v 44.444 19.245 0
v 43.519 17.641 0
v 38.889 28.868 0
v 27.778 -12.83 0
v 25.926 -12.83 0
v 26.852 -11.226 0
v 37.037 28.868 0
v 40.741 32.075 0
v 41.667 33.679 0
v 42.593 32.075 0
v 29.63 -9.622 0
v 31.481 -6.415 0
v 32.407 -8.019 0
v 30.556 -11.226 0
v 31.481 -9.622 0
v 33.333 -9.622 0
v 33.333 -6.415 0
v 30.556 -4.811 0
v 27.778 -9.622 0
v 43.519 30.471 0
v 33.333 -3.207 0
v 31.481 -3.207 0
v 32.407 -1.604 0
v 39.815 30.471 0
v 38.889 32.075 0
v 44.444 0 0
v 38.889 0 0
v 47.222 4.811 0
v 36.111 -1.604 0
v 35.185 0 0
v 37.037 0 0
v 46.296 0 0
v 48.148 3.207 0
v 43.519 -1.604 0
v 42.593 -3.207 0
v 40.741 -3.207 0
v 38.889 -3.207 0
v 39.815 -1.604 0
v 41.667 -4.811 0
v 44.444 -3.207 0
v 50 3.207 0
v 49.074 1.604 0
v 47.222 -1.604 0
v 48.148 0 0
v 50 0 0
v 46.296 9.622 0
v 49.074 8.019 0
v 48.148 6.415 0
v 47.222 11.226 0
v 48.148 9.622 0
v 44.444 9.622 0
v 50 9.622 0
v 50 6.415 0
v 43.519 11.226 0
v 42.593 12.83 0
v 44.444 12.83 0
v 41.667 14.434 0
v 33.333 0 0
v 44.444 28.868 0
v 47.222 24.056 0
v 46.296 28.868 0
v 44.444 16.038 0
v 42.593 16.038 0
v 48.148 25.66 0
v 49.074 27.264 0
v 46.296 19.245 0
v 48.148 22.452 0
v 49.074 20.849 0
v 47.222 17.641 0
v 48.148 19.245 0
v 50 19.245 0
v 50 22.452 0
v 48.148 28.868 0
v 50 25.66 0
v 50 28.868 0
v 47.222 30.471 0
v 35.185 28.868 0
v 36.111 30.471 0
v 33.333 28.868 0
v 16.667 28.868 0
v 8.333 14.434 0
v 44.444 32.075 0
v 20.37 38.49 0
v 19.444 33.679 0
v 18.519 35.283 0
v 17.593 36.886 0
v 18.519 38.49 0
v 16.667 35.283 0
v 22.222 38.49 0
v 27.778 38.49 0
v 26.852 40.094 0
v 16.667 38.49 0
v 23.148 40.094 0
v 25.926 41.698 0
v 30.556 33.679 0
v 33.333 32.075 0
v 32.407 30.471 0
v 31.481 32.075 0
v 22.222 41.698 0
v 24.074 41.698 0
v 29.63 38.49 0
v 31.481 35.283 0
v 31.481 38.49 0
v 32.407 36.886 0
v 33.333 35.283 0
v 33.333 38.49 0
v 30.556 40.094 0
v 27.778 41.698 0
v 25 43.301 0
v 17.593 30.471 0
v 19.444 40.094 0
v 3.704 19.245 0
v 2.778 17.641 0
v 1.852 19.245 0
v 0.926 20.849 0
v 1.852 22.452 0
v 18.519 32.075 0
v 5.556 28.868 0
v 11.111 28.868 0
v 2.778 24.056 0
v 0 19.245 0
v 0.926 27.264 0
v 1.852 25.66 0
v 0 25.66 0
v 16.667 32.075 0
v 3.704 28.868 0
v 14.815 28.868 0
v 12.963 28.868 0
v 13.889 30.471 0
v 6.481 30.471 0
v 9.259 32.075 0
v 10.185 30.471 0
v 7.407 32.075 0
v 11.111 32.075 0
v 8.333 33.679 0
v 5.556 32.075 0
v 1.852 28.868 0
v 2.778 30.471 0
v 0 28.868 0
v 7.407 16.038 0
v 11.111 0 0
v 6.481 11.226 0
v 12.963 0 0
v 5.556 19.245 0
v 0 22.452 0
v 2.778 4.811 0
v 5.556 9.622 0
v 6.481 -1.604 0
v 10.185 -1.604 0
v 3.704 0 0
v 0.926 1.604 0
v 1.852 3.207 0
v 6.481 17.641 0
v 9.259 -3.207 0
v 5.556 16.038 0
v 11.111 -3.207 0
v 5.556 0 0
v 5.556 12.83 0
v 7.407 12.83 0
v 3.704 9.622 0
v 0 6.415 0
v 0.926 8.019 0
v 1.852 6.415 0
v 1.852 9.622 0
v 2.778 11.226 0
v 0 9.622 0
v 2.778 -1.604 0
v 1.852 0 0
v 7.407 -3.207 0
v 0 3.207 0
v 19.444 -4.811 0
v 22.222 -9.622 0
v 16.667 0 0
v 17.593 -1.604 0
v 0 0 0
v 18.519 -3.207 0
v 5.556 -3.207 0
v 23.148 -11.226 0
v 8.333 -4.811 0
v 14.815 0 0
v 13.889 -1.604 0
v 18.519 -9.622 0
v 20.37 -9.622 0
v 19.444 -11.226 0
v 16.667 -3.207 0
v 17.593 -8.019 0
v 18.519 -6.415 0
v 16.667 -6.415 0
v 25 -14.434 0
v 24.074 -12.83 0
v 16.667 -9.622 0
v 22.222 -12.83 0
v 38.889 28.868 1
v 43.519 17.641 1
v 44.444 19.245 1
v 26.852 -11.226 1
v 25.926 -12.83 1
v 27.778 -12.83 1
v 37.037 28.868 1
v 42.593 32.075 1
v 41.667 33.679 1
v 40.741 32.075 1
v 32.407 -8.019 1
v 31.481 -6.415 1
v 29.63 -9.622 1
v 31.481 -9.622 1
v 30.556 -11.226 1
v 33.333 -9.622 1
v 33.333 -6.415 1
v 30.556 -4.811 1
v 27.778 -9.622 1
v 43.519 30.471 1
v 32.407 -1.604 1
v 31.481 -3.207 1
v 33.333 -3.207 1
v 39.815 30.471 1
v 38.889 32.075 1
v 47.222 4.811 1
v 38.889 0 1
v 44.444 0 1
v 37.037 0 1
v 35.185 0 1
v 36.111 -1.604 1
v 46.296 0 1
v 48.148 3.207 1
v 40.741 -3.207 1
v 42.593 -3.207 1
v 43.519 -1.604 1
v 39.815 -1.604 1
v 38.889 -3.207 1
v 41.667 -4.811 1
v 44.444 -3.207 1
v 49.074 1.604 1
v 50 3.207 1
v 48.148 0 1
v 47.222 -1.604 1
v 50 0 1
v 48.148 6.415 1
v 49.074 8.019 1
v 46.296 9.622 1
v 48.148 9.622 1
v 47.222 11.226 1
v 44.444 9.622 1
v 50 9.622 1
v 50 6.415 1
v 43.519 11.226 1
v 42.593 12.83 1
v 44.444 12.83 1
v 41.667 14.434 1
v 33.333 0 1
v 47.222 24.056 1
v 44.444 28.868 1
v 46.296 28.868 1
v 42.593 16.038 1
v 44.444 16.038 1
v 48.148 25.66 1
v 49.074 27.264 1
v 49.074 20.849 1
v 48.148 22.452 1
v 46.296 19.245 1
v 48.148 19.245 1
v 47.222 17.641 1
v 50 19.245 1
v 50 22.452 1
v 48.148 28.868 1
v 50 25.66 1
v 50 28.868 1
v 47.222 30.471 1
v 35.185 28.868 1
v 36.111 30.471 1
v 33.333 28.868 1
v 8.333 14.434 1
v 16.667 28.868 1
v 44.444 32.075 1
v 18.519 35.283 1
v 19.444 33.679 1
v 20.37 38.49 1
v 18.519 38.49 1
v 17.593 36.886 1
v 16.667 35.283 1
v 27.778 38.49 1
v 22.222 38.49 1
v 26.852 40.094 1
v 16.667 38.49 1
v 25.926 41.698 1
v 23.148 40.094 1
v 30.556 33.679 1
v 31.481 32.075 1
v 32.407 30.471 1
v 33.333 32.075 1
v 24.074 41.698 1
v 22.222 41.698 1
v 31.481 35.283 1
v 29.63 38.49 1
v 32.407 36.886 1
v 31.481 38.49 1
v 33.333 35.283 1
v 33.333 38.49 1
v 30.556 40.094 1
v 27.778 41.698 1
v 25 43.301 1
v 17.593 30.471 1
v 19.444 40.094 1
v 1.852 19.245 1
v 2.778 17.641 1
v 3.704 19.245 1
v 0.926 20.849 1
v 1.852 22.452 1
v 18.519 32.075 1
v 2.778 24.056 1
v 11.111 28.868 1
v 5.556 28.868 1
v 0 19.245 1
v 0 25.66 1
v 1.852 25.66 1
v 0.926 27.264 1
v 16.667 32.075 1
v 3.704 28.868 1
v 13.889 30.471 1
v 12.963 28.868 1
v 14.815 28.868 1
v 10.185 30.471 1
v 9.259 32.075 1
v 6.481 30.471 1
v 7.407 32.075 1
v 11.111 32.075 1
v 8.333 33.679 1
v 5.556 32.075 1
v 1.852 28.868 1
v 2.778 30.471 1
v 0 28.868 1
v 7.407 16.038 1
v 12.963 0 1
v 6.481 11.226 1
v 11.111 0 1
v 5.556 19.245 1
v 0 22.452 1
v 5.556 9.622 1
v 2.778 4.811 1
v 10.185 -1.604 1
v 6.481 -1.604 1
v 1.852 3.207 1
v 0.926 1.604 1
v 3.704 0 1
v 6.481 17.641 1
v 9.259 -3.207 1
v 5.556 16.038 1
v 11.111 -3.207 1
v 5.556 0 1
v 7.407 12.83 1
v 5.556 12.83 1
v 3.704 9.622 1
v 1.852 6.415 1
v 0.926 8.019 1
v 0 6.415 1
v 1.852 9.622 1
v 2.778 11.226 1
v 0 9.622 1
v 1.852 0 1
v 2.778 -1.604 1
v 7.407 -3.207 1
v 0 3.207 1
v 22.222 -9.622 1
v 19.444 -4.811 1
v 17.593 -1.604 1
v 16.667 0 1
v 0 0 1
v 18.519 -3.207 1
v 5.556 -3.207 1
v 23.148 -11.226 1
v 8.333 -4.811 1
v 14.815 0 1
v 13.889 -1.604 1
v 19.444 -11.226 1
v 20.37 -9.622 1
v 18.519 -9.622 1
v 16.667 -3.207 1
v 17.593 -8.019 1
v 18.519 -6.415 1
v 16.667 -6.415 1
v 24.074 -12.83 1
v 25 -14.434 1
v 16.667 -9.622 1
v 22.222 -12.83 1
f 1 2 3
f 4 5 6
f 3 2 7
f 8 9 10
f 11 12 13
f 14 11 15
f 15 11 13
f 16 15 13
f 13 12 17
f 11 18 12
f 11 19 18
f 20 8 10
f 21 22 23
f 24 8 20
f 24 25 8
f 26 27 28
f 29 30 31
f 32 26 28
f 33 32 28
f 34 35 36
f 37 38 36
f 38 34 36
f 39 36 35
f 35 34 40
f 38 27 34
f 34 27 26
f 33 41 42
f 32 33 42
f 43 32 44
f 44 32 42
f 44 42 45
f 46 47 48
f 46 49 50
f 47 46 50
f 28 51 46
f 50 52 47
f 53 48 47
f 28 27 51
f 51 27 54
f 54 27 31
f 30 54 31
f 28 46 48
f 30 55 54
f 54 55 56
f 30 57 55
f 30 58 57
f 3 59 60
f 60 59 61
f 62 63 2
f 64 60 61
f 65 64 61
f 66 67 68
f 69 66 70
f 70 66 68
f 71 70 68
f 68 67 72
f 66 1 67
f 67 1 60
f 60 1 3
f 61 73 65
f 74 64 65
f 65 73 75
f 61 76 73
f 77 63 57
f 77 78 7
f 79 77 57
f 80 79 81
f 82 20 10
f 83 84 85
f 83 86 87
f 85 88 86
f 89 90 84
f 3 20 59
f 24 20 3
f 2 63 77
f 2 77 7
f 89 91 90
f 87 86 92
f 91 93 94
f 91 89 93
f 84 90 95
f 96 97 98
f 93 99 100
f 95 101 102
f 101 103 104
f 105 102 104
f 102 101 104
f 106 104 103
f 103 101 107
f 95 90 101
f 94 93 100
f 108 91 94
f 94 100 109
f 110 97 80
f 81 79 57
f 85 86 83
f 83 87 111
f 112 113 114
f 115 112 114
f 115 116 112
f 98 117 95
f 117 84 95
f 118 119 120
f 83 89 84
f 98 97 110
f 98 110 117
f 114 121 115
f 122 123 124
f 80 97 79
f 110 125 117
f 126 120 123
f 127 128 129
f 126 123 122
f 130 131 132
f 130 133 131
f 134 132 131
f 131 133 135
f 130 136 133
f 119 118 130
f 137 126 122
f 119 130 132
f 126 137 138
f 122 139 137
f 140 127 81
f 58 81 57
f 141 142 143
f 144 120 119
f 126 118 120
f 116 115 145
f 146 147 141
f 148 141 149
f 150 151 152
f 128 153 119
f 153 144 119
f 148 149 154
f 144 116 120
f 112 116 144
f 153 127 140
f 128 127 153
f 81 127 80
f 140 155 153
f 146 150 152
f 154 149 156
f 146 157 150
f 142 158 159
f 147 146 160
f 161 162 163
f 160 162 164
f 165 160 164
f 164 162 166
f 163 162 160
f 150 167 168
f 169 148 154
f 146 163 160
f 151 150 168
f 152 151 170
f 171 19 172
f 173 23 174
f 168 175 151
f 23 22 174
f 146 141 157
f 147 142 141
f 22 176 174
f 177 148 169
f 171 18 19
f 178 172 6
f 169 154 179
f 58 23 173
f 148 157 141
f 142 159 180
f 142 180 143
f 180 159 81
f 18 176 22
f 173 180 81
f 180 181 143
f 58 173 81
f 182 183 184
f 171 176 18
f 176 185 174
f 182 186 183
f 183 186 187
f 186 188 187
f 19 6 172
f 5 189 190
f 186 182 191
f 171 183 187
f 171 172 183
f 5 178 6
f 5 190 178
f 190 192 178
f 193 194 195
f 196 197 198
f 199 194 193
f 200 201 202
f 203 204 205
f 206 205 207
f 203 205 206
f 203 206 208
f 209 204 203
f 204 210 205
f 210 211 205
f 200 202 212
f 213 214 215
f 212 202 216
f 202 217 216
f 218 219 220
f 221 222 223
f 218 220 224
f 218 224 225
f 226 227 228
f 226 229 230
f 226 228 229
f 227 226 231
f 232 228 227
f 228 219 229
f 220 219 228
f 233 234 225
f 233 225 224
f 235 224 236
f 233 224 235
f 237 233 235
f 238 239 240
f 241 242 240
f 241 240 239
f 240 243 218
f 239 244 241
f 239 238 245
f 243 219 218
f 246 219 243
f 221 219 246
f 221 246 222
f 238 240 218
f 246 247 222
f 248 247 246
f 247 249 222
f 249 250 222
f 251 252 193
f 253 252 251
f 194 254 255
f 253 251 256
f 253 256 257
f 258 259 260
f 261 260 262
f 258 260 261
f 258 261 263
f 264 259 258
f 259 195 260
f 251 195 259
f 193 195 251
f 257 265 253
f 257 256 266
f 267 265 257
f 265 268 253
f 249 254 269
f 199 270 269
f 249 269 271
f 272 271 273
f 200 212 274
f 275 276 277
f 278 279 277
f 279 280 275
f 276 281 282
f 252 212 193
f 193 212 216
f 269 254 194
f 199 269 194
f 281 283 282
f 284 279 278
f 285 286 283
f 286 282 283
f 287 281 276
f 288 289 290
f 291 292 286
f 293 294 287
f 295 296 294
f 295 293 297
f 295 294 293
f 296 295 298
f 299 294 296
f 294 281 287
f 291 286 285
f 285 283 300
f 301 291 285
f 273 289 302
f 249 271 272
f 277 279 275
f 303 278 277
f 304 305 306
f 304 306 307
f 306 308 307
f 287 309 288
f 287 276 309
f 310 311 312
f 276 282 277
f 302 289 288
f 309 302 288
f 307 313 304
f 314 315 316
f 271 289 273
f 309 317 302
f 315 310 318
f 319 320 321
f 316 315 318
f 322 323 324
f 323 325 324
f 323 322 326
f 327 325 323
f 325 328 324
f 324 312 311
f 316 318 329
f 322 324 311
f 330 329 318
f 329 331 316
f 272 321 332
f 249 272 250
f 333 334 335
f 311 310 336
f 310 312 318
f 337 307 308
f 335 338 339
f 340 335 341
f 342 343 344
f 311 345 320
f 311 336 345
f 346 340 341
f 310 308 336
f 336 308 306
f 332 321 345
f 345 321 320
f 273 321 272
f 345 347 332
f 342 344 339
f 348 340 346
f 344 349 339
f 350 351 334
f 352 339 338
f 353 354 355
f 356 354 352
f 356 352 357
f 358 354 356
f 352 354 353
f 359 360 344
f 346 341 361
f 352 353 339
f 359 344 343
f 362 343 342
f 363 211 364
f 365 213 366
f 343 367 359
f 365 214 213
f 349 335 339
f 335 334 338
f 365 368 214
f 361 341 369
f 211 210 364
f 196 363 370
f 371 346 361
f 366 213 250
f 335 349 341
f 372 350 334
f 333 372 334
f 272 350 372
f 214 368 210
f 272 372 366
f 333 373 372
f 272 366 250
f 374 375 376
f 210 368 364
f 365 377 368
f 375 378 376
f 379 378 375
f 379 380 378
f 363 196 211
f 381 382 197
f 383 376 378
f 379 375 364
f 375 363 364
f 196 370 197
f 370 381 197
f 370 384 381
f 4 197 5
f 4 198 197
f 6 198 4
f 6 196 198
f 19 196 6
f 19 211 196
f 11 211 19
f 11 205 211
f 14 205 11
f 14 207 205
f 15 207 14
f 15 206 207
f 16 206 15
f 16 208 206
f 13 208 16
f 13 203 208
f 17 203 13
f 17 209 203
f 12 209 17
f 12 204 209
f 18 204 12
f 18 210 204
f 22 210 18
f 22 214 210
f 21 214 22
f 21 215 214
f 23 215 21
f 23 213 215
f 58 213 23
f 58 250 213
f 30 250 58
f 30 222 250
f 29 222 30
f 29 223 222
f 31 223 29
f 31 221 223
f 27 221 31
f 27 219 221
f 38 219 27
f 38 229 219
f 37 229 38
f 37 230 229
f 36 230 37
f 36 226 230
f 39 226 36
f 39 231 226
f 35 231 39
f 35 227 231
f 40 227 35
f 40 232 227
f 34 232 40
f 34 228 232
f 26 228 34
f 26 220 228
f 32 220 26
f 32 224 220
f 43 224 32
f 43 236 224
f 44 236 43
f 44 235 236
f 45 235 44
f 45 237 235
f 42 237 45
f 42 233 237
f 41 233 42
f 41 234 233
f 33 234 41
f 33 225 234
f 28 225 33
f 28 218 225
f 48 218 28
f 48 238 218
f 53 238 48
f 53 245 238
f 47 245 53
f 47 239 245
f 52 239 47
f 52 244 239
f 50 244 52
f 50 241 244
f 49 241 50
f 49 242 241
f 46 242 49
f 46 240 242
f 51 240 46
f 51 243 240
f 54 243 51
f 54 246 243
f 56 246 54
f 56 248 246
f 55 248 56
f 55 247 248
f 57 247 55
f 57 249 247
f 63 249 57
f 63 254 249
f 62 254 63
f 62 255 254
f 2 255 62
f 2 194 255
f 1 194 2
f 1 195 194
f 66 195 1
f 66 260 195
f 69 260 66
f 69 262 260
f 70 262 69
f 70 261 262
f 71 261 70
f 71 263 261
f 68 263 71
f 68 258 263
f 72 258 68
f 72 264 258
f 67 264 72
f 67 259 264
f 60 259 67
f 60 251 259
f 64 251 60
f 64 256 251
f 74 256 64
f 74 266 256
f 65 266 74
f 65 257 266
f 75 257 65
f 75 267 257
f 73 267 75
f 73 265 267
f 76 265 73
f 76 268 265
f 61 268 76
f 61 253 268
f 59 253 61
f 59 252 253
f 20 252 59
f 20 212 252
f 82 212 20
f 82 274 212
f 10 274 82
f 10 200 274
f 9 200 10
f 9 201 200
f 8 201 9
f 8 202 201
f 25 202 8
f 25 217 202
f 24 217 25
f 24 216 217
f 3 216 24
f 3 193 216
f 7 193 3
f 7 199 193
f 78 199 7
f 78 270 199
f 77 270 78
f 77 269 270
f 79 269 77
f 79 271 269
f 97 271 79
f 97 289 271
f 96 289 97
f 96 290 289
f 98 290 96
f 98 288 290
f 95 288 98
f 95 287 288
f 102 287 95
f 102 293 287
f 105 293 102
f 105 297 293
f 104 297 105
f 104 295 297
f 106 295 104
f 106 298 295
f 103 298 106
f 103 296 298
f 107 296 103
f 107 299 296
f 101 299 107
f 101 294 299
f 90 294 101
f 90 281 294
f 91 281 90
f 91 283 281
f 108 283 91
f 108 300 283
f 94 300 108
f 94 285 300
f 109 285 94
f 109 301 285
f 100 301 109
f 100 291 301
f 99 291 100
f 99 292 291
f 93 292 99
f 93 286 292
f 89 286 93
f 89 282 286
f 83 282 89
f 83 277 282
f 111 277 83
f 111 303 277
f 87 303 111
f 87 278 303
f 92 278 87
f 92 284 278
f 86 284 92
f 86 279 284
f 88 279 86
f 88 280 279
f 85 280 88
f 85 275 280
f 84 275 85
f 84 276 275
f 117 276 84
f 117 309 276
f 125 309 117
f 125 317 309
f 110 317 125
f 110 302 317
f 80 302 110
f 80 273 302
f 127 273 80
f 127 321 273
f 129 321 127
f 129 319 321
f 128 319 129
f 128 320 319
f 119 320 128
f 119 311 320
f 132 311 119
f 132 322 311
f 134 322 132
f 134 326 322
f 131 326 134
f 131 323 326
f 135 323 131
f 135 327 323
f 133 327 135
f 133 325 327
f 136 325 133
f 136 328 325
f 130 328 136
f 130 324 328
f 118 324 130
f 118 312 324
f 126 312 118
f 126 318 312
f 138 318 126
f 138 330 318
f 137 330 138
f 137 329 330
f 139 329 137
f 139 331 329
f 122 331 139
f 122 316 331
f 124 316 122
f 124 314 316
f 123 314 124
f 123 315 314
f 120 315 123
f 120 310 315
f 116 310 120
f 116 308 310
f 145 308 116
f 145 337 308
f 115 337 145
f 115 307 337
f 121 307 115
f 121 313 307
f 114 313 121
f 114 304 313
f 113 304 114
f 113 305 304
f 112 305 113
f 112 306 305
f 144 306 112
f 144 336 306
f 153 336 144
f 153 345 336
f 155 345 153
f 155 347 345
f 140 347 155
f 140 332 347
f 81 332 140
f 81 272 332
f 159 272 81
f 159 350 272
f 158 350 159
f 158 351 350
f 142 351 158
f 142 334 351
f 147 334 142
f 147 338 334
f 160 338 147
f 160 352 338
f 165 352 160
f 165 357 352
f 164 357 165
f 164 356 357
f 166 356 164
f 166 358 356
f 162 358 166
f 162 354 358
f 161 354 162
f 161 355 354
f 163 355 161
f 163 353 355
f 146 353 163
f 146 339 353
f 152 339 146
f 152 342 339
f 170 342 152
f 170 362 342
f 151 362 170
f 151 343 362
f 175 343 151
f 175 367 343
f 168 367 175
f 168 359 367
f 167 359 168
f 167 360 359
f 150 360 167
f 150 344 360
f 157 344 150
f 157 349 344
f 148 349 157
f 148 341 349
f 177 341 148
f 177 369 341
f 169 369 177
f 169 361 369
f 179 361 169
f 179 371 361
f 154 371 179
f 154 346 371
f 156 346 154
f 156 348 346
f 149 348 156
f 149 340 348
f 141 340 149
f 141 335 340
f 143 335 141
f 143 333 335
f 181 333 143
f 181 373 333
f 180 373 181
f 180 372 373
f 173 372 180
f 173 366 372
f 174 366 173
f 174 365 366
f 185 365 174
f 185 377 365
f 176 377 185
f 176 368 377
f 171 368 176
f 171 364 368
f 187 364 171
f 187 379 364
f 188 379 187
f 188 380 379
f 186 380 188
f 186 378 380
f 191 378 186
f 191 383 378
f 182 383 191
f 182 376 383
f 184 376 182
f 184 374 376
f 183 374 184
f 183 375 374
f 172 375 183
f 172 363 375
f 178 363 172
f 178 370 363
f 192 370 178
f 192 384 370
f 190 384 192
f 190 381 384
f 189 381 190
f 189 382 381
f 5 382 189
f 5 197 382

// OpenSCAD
linear_extrude(height=1.0){
    polygon(points=[[0, 0], [0.9259259259259257, 1.6037507477489603], [0.9259259259259257, 1.6037507477489603], [-2.220446049250313e-16, 3.2075014954979206], [-2.220446049250313e-16, 3.2075014954979206], [1.8518518518518514, 3.2075014954979206], [1.8518518518518514, 3.2075014954979206], [2.7777777777777772, 4.811252243246881], [2.7777777777777772, 4.811252243246881], [1.8518518518518512, 6.415002990995841], [1.8518518518518512, 6.415002990995841], [-6.661338147750939e-16, 6.415002990995841], [-6.661338147750939e-16, 6.415002990995841], [0.9259259259259252, 8.018753738744802], [0.9259259259259252, 8.018753738744802], [-8.881784197001252e-16, 9.622504486493762], [-8.881784197001252e-16, 9.622504486493762], [1.8518518518518507, 9.622504486493762], [1.8518518518518507, 9.622504486493762], [2.777777777777777, 11.226255234242723], [2.777777777777777, 11.226255234242723], [3.7037037037037024, 9.622504486493762], [3.7037037037037024, 9.622504486493762], [5.5555555555555545, 9.622504486493762], [5.5555555555555545, 9.622504486493762], [6.48148148148148, 11.226255234242723], [6.48148148148148, 11.226255234242723], [5.555555555555554, 12.830005981991683], [5.555555555555554, 12.830005981991683], [7.4074074074074066, 12.830005981991683], [7.4074074074074066, 12.830005981991683], [8.333333333333332, 14.433756729740644], [8.333333333333332, 14.433756729740644], [7.4074074074074066, 16.037507477489605], [7.4074074074074066, 16.037507477489605], [5.555555555555555, 16.037507477489605], [5.555555555555555, 16.037507477489605], [6.481481481481481, 17.641258225238563], [6.481481481481481, 17.641258225238563], [5.555555555555555, 19.245008972987524], [5.555555555555555, 19.245008972987524], [3.7037037037037033, 19.245008972987524], [3.7037037037037033, 19.245008972987524], [2.7777777777777772, 17.641258225238563], [2.7777777777777772, 17.641258225238563], [1.8518518518518512, 19.245008972987524], [1.8518518518518512, 19.245008972987524], [-8.881784197001252e-16, 19.245008972987524], [-8.881784197001252e-16, 19.245008972987524], [0.9259259259259253, 20.848759720736485], [0.9259259259259253, 20.848759720736485], [-2.220446049250313e-16, 22.452510468485443], [-2.220446049250313e-16, 22.452510468485443], [1.8518518518518514, 22.452510468485443], [1.8518518518518514, 22.452510468485443], [2.7777777777777777, 24.056261216234404], [2.7777777777777777, 24.056261216234404], [1.8518518518518519, 25.660011963983365], [1.8518518518518519, 25.660011963983365], [-8.881784197001252e-16, 25.660011963983365], [-8.881784197001252e-16, 25.660011963983365], [0.925925925925926, 27.263762711732326], [0.925925925925926, 27.263762711732326], [0.0, 28.867513459481287], [0.0, 28.867513459481287], [1.8518518518518514, 28.867513459481287], [1.8518518518518514, 28.867513459481287], [2.7777777777777772, 30.47126420723025], [2.7777777777777772, 30.47126420723025], [3.703703703703703, 28.867513459481287], [3.703703703703703, 28.867513459481287], [5.5555555555555545, 28.867513459481287], [5.5555555555555545, 28.867513459481287], [6.48148148148148, 30.47126420723025], [6.48148148148148, 30.47126420723025], [5.555555555555554, 32.07501495497921], [5.555555555555554, 32.07501495497921], [7.4074074074074066, 32.07501495497921], [7.4074074074074066, 32.07501495497921], [8.333333333333332, 33.67876570272817], [8.333333333333332, 33.67876570272817], [9.259259259259258, 32.07501495497921], [9.259259259259258, 32.07501495497921], [11.11111111111111, 32.07501495497921], [11.11111111111111, 32.07501495497921], [10.185185185185183, 30.47126420723025], [10.185185185185183, 30.47126420723025], [11.111111111111109, 28.867513459481287], [11.111111111111109, 28.867513459481287], [12.96296296296296, 28.867513459481287], [12.96296296296296, 28.867513459481287], [13.888888888888886, 30.47126420723025], [13.888888888888886, 30.47126420723025], [14.814814814814813, 28.867513459481287], [14.814814814814813, 28.867513459481287], [16.666666666666664, 28.867513459481287], [16.666666666666664, 28.867513459481287], [17.59259259259259, 30.47126420723025], [17.59259259259259, 30.47126420723025], [16.666666666666664, 32.07501495497921], [16.666666666666664, 32.07501495497921], [18.518518518518515, 32.07501495497921], [18.518518518518515, 32.07501495497921], [19.444444444444443, 33.67876570272817], [19.444444444444443, 33.67876570272817], [18.518518518518515, 35.28251645047713], [18.518518518518515, 35.28251645047713], [16.666666666666664, 35.28251645047713], [16.666666666666664, 35.28251645047713], [17.59259259259259, 36.88626719822609], [17.59259259259259, 36.88626719822609], [16.666666666666664, 38.490017945975055], [16.666666666666664, 38.490017945975055], [18.518518518518515, 38.490017945975055], [18.518518518518515, 38.490017945975055], [19.444444444444446, 40.093768693724016], [19.444444444444446, 40.093768693724016], [20.37037037037037, 38.49001794597505], [20.37037037037037, 38.49001794597505], [22.22222222222222, 38.49001794597505], [22.22222222222222, 38.49001794597505], [23.14814814814815, 40.09376869372401], [23.14814814814815, 40.09376869372401], [22.22222222222222, 41.69751944147297], [22.22222222222222, 41.69751944147297], [24.074074074074073, 41.69751944147297], [24.074074074074073, 41.69751944147297], [25.0, 43.30127018922193], [25.0, 43.30127018922193], [25.925925925925924, 41.69751944147297], [25.925925925925924, 41.69751944147297], [27.777777777777775, 41.69751944147297], [27.777777777777775, 41.69751944147297], [26.85185185185185, 40.09376869372401], [26.85185185185185, 40.09376869372401], [27.777777777777775, 38.49001794597505], [27.777777777777775, 38.49001794597505], [29.629629629629626, 38.49001794597505], [29.629629629629626, 38.49001794597505], [30.555555555555546, 40.093768693724016], [30.555555555555546, 40.093768693724016], [31.481481481481477, 38.490017945975055], [31.481481481481477, 38.490017945975055], [33.33333333333333, 38.490017945975055], [33.33333333333333, 38.490017945975055], [32.407407407407405, 36.88626719822609], [32.407407407407405, 36.88626719822609], [33.33333333333333, 35.28251645047713], [33.33333333333333, 35.28251645047713], [31.481481481481477, 35.28251645047713], [31.481481481481477, 35.28251645047713], [30.55555555555555, 33.67876570272817], [30.55555555555555, 33.67876570272817], [31.481481481481477, 32.07501495497921], [31.481481481481477, 32.07501495497921], [33.33333333333333, 32.07501495497921], [33.33333333333333, 32.07501495497921], [32.407407407407405, 30.47126420723025], [32.407407407407405, 30.47126420723025], [33.33333333333333, 28.867513459481287], [33.33333333333333, 28.867513459481287], [35.18518518518518, 28.867513459481287], [35.18518518518518, 28.867513459481287], [36.11111111111111, 30.47126420723025], [36.11111111111111, 30.47126420723025], [37.03703703703703, 28.867513459481287], [37.03703703703703, 28.867513459481287], [38.888888888888886, 28.867513459481287], [38.888888888888886, 28.867513459481287], [39.81481481481481, 30.47126420723025], [39.81481481481481, 30.47126420723025], [38.88888888888888, 32.07501495497921], [38.88888888888888, 32.07501495497921], [40.74074074074074, 32.07501495497921], [40.74074074074074, 32.07501495497921], [41.666666666666664, 33.67876570272817], [41.666666666666664, 33.67876570272817], [42.59259259259259, 32.07501495497921], [42.59259259259259, 32.07501495497921], [44.44444444444445, 32.07501495497921], [44.44444444444445, 32.07501495497921], [43.51851851851852, 30.47126420723025], [43.51851851851852, 30.47126420723025], [44.44444444444444, 28.867513459481287], [44.44444444444444, 28.867513459481287], [46.2962962962963, 28.867513459481287], [46.2962962962963, 28.867513459481287], [47.22222222222222, 30.47126420723025], [47.22222222222222, 30.47126420723025], [48.148148148148145, 28.867513459481287], [48.148148148148145, 28.867513459481287], [50.0, 28.867513459481287], [50.0, 28.867513459481287], [49.074074074074076, 27.263762711732326], [49.074074074074076, 27.263762711732326], [50.0, 25.660011963983365], [50.0, 25.660011963983365], [48.148148148148145, 25.66001196398337], [48.148148148148145, 25.66001196398337], [47.22222222222222, 24.056261216234407], [47.22222222222222, 24.056261216234407], [48.148148148148145, 22.452510468485446], [48.148148148148145, 22.452510468485446], [50.0, 22.452510468485443], [50.0, 22.452510468485443], [49.07407407407407, 20.848759720736485], [49.07407407407407, 20.848759720736485], [49.99999999999999, 19.245008972987524], [49.99999999999999, 19.245008972987524], [48.148148148148145, 19.245008972987524], [48.148148148148145, 19.245008972987524], [47.222222222222214, 17.64125822523857], [47.222222222222214, 17.64125822523857], [46.29629629629629, 19.245008972987527], [46.29629629629629, 19.245008972987527], [44.44444444444444, 19.245008972987527], [44.44444444444444, 19.245008972987527], [43.51851851851852, 17.641258225238566], [43.51851851851852, 17.641258225238566], [44.44444444444445, 16.037507477489605], [44.44444444444445, 16.037507477489605], [42.59259259259259, 16.037507477489605], [42.59259259259259, 16.037507477489605], [41.666666666666664, 14.433756729740644], [41.666666666666664, 14.433756729740644], [42.59259259259259, 12.830005981991684], [42.59259259259259, 12.830005981991684], [44.44444444444444, 12.830005981991684], [44.44444444444444, 12.830005981991684], [43.51851851851852, 11.226255234242725], [43.51851851851852, 11.226255234242725], [44.44444444444444, 9.622504486493764], [44.44444444444444, 9.622504486493764], [46.29629629629629, 9.622504486493764], [46.29629629629629, 9.622504486493764], [47.222222222222214, 11.226255234242723], [47.222222222222214, 11.226255234242723], [48.148148148148145, 9.622504486493764], [48.148148148148145, 9.622504486493764], [49.99999999999999, 9.622504486493764], [49.99999999999999, 9.622504486493764], [49.07407407407407, 8.018753738744802], [49.07407407407407, 8.018753738744802], [49.99999999999999, 6.415002990995845], [49.99999999999999, 6.415002990995845], [48.148148148148145, 6.415002990995843], [48.148148148148145, 6.415002990995843], [47.22222222222222, 4.811252243246882], [47.22222222222222, 4.811252243246882], [48.148148148148145, 3.2075014954979215], [48.148148148148145, 3.2075014954979215], [50.0, 3.2075014954979215], [50.0, 3.2075014954979215], [49.074074074074076, 1.6037507477489608], [49.074074074074076, 1.6037507477489608], [50.0, 0.0], [50.0, 0.0], [48.148148148148145, 0.0], [48.148148148148145, 0.0], [47.22222222222222, -1.603750747748961], [47.22222222222222, -1.603750747748961], [46.2962962962963, 0.0], [46.2962962962963, 0.0], [44.44444444444444, 0.0], [44.44444444444444, 0.0], [43.51851851851852, -1.6037507477489603], [43.51851851851852, -1.6037507477489603], [44.44444444444444, -3.207501495497919], [44.44444444444444, -3.207501495497919], [42.592592592592595, -3.2075014954979206], [42.592592592592595, -3.2075014954979206], [41.66666666666667, -4.811252243246881], [41.66666666666667, -4.811252243246881], [40.74074074074075, -3.2075014954979206], [40.74074074074075, -3.2075014954979206], [38.8888888888889, -3.207501495497921], [38.8888888888889, -3.207501495497921], [39.81481481481482, -1.6037507477489603], [39.81481481481482, -1.6037507477489603], [38.88888888888889, 0.0], [38.88888888888889, 0.0], [37.03703703703704, 0.0], [37.03703703703704, 0.0], [36.111111111111114, -1.603750747748961], [36.111111111111114, -1.603750747748961], [35.18518518518519, 0.0], [35.18518518518519, 0.0], [33.333333333333336, 0.0], [33.333333333333336, 0.0], [32.40740740740741, -1.6037507477489605], [32.40740740740741, -1.6037507477489605], [33.333333333333336, -3.2075014954979215], [33.333333333333336, -3.2075014954979215], [31.481481481481485, -3.207501495497921], [31.481481481481485, -3.207501495497921], [30.555555555555557, -4.811252243246882], [30.555555555555557, -4.811252243246882], [31.481481481481485, -6.415002990995842], [31.481481481481485, -6.415002990995842], [33.333333333333336, -6.415002990995842], [33.333333333333336, -6.415002990995842], [32.40740740740741, -8.018753738744802], [32.40740740740741, -8.018753738744802], [33.333333333333336, -9.622504486493764], [33.333333333333336, -9.622504486493764], [31.481481481481485, -9.622504486493764], [31.481481481481485, -9.622504486493764], [30.555555555555557, -11.226255234242725], [30.555555555555557, -11.226255234242725], [29.62962962962963, -9.622504486493764], [29.62962962962963, -9.622504486493764], [27.77777777777778, -9.622504486493764], [27.77777777777778, -9.622504486493764], [26.85185185185185, -11.226255234242725], [26.85185185185185, -11.226255234242725], [27.77777777777778, -12.830005981991686], [27.77777777777778, -12.830005981991686], [25.925925925925927, -12.830005981991684], [25.925925925925927, -12.830005981991684], [25.0, -14.433756729740645], [25.0, -14.433756729740645], [24.074074074074076, -12.830005981991684], [24.074074074074076, -12.830005981991684], [22.222222222222225, -12.830005981991684], [22.222222222222225, -12.830005981991684], [23.14814814814815, -11.226255234242725], [23.14814814814815, -11.226255234242725], [22.222222222222225, -9.622504486493764], [22.222222222222225, -9.622504486493764], [20.370370370370374, -9.622504486493764], [20.370370370370374, -9.622504486493764], [19.444444444444446, -11.226255234242725], [19.444444444444446, -11.226255234242725], [18.51851851851852, -9.622504486493762], [18.51851851851852, -9.622504486493762], [16.666666666666668, -9.622504486493762], [16.666666666666668, -9.622504486493762], [17.592592592592595, -8.018753738744802], [17.592592592592595, -8.018753738744802], [16.666666666666668, -6.41500299099584], [16.666666666666668, -6.41500299099584], [18.518518518518523, -6.415002990995842], [18.518518518518523, -6.415002990995842], [19.44444444444445, -4.811252243246882], [19.44444444444445, -4.811252243246882], [18.518518518518523, -3.2075014954979215], [18.518518518518523, -3.2075014954979215], [16.66666666666667, -3.2075014954979215], [16.66666666666667, -3.2075014954979215], [17.5925925925926, -1.6037507477489608], [17.5925925925926, -1.6037507477489608], [16.66666666666667, 0.0], [16.66666666666667, 0.0], [14.814814814814818, 0.0], [14.814814814814818, 0.0], [13.888888888888893, -1.603750747748961], [13.888888888888893, -1.603750747748961], [12.962962962962967, 0.0], [12.962962962962967, 0.0], [11.111111111111114, 0.0], [11.111111111111114, 0.0], [10.185185185185189, -1.6037507477489608], [10.185185185185189, -1.6037507477489608], [11.111111111111114, -3.207501495497922], [11.111111111111114, -3.207501495497922], [9.259259259259261, -3.2075014954979215], [9.259259259259261, -3.2075014954979215], [8.333333333333336, -4.811252243246883], [8.333333333333336, -4.811252243246883], [7.407407407407409, -3.207501495497922], [7.407407407407409, -3.207501495497922], [5.555555555555557, -3.207501495497922], [5.555555555555557, -3.207501495497922], [6.481481481481484, -1.6037507477489612], [6.481481481481484, -1.6037507477489612], [5.555555555555557, 0.0], [5.555555555555557, 0.0], [3.703703703703705, 0.0], [3.703703703703705, 0.0], [2.7777777777777786, -1.603750747748961], [2.7777777777777786, -1.603750747748961], [1.8518518518518525, 0.0], [1.8518518518518525, 0.0], [0, 0]]);
};
